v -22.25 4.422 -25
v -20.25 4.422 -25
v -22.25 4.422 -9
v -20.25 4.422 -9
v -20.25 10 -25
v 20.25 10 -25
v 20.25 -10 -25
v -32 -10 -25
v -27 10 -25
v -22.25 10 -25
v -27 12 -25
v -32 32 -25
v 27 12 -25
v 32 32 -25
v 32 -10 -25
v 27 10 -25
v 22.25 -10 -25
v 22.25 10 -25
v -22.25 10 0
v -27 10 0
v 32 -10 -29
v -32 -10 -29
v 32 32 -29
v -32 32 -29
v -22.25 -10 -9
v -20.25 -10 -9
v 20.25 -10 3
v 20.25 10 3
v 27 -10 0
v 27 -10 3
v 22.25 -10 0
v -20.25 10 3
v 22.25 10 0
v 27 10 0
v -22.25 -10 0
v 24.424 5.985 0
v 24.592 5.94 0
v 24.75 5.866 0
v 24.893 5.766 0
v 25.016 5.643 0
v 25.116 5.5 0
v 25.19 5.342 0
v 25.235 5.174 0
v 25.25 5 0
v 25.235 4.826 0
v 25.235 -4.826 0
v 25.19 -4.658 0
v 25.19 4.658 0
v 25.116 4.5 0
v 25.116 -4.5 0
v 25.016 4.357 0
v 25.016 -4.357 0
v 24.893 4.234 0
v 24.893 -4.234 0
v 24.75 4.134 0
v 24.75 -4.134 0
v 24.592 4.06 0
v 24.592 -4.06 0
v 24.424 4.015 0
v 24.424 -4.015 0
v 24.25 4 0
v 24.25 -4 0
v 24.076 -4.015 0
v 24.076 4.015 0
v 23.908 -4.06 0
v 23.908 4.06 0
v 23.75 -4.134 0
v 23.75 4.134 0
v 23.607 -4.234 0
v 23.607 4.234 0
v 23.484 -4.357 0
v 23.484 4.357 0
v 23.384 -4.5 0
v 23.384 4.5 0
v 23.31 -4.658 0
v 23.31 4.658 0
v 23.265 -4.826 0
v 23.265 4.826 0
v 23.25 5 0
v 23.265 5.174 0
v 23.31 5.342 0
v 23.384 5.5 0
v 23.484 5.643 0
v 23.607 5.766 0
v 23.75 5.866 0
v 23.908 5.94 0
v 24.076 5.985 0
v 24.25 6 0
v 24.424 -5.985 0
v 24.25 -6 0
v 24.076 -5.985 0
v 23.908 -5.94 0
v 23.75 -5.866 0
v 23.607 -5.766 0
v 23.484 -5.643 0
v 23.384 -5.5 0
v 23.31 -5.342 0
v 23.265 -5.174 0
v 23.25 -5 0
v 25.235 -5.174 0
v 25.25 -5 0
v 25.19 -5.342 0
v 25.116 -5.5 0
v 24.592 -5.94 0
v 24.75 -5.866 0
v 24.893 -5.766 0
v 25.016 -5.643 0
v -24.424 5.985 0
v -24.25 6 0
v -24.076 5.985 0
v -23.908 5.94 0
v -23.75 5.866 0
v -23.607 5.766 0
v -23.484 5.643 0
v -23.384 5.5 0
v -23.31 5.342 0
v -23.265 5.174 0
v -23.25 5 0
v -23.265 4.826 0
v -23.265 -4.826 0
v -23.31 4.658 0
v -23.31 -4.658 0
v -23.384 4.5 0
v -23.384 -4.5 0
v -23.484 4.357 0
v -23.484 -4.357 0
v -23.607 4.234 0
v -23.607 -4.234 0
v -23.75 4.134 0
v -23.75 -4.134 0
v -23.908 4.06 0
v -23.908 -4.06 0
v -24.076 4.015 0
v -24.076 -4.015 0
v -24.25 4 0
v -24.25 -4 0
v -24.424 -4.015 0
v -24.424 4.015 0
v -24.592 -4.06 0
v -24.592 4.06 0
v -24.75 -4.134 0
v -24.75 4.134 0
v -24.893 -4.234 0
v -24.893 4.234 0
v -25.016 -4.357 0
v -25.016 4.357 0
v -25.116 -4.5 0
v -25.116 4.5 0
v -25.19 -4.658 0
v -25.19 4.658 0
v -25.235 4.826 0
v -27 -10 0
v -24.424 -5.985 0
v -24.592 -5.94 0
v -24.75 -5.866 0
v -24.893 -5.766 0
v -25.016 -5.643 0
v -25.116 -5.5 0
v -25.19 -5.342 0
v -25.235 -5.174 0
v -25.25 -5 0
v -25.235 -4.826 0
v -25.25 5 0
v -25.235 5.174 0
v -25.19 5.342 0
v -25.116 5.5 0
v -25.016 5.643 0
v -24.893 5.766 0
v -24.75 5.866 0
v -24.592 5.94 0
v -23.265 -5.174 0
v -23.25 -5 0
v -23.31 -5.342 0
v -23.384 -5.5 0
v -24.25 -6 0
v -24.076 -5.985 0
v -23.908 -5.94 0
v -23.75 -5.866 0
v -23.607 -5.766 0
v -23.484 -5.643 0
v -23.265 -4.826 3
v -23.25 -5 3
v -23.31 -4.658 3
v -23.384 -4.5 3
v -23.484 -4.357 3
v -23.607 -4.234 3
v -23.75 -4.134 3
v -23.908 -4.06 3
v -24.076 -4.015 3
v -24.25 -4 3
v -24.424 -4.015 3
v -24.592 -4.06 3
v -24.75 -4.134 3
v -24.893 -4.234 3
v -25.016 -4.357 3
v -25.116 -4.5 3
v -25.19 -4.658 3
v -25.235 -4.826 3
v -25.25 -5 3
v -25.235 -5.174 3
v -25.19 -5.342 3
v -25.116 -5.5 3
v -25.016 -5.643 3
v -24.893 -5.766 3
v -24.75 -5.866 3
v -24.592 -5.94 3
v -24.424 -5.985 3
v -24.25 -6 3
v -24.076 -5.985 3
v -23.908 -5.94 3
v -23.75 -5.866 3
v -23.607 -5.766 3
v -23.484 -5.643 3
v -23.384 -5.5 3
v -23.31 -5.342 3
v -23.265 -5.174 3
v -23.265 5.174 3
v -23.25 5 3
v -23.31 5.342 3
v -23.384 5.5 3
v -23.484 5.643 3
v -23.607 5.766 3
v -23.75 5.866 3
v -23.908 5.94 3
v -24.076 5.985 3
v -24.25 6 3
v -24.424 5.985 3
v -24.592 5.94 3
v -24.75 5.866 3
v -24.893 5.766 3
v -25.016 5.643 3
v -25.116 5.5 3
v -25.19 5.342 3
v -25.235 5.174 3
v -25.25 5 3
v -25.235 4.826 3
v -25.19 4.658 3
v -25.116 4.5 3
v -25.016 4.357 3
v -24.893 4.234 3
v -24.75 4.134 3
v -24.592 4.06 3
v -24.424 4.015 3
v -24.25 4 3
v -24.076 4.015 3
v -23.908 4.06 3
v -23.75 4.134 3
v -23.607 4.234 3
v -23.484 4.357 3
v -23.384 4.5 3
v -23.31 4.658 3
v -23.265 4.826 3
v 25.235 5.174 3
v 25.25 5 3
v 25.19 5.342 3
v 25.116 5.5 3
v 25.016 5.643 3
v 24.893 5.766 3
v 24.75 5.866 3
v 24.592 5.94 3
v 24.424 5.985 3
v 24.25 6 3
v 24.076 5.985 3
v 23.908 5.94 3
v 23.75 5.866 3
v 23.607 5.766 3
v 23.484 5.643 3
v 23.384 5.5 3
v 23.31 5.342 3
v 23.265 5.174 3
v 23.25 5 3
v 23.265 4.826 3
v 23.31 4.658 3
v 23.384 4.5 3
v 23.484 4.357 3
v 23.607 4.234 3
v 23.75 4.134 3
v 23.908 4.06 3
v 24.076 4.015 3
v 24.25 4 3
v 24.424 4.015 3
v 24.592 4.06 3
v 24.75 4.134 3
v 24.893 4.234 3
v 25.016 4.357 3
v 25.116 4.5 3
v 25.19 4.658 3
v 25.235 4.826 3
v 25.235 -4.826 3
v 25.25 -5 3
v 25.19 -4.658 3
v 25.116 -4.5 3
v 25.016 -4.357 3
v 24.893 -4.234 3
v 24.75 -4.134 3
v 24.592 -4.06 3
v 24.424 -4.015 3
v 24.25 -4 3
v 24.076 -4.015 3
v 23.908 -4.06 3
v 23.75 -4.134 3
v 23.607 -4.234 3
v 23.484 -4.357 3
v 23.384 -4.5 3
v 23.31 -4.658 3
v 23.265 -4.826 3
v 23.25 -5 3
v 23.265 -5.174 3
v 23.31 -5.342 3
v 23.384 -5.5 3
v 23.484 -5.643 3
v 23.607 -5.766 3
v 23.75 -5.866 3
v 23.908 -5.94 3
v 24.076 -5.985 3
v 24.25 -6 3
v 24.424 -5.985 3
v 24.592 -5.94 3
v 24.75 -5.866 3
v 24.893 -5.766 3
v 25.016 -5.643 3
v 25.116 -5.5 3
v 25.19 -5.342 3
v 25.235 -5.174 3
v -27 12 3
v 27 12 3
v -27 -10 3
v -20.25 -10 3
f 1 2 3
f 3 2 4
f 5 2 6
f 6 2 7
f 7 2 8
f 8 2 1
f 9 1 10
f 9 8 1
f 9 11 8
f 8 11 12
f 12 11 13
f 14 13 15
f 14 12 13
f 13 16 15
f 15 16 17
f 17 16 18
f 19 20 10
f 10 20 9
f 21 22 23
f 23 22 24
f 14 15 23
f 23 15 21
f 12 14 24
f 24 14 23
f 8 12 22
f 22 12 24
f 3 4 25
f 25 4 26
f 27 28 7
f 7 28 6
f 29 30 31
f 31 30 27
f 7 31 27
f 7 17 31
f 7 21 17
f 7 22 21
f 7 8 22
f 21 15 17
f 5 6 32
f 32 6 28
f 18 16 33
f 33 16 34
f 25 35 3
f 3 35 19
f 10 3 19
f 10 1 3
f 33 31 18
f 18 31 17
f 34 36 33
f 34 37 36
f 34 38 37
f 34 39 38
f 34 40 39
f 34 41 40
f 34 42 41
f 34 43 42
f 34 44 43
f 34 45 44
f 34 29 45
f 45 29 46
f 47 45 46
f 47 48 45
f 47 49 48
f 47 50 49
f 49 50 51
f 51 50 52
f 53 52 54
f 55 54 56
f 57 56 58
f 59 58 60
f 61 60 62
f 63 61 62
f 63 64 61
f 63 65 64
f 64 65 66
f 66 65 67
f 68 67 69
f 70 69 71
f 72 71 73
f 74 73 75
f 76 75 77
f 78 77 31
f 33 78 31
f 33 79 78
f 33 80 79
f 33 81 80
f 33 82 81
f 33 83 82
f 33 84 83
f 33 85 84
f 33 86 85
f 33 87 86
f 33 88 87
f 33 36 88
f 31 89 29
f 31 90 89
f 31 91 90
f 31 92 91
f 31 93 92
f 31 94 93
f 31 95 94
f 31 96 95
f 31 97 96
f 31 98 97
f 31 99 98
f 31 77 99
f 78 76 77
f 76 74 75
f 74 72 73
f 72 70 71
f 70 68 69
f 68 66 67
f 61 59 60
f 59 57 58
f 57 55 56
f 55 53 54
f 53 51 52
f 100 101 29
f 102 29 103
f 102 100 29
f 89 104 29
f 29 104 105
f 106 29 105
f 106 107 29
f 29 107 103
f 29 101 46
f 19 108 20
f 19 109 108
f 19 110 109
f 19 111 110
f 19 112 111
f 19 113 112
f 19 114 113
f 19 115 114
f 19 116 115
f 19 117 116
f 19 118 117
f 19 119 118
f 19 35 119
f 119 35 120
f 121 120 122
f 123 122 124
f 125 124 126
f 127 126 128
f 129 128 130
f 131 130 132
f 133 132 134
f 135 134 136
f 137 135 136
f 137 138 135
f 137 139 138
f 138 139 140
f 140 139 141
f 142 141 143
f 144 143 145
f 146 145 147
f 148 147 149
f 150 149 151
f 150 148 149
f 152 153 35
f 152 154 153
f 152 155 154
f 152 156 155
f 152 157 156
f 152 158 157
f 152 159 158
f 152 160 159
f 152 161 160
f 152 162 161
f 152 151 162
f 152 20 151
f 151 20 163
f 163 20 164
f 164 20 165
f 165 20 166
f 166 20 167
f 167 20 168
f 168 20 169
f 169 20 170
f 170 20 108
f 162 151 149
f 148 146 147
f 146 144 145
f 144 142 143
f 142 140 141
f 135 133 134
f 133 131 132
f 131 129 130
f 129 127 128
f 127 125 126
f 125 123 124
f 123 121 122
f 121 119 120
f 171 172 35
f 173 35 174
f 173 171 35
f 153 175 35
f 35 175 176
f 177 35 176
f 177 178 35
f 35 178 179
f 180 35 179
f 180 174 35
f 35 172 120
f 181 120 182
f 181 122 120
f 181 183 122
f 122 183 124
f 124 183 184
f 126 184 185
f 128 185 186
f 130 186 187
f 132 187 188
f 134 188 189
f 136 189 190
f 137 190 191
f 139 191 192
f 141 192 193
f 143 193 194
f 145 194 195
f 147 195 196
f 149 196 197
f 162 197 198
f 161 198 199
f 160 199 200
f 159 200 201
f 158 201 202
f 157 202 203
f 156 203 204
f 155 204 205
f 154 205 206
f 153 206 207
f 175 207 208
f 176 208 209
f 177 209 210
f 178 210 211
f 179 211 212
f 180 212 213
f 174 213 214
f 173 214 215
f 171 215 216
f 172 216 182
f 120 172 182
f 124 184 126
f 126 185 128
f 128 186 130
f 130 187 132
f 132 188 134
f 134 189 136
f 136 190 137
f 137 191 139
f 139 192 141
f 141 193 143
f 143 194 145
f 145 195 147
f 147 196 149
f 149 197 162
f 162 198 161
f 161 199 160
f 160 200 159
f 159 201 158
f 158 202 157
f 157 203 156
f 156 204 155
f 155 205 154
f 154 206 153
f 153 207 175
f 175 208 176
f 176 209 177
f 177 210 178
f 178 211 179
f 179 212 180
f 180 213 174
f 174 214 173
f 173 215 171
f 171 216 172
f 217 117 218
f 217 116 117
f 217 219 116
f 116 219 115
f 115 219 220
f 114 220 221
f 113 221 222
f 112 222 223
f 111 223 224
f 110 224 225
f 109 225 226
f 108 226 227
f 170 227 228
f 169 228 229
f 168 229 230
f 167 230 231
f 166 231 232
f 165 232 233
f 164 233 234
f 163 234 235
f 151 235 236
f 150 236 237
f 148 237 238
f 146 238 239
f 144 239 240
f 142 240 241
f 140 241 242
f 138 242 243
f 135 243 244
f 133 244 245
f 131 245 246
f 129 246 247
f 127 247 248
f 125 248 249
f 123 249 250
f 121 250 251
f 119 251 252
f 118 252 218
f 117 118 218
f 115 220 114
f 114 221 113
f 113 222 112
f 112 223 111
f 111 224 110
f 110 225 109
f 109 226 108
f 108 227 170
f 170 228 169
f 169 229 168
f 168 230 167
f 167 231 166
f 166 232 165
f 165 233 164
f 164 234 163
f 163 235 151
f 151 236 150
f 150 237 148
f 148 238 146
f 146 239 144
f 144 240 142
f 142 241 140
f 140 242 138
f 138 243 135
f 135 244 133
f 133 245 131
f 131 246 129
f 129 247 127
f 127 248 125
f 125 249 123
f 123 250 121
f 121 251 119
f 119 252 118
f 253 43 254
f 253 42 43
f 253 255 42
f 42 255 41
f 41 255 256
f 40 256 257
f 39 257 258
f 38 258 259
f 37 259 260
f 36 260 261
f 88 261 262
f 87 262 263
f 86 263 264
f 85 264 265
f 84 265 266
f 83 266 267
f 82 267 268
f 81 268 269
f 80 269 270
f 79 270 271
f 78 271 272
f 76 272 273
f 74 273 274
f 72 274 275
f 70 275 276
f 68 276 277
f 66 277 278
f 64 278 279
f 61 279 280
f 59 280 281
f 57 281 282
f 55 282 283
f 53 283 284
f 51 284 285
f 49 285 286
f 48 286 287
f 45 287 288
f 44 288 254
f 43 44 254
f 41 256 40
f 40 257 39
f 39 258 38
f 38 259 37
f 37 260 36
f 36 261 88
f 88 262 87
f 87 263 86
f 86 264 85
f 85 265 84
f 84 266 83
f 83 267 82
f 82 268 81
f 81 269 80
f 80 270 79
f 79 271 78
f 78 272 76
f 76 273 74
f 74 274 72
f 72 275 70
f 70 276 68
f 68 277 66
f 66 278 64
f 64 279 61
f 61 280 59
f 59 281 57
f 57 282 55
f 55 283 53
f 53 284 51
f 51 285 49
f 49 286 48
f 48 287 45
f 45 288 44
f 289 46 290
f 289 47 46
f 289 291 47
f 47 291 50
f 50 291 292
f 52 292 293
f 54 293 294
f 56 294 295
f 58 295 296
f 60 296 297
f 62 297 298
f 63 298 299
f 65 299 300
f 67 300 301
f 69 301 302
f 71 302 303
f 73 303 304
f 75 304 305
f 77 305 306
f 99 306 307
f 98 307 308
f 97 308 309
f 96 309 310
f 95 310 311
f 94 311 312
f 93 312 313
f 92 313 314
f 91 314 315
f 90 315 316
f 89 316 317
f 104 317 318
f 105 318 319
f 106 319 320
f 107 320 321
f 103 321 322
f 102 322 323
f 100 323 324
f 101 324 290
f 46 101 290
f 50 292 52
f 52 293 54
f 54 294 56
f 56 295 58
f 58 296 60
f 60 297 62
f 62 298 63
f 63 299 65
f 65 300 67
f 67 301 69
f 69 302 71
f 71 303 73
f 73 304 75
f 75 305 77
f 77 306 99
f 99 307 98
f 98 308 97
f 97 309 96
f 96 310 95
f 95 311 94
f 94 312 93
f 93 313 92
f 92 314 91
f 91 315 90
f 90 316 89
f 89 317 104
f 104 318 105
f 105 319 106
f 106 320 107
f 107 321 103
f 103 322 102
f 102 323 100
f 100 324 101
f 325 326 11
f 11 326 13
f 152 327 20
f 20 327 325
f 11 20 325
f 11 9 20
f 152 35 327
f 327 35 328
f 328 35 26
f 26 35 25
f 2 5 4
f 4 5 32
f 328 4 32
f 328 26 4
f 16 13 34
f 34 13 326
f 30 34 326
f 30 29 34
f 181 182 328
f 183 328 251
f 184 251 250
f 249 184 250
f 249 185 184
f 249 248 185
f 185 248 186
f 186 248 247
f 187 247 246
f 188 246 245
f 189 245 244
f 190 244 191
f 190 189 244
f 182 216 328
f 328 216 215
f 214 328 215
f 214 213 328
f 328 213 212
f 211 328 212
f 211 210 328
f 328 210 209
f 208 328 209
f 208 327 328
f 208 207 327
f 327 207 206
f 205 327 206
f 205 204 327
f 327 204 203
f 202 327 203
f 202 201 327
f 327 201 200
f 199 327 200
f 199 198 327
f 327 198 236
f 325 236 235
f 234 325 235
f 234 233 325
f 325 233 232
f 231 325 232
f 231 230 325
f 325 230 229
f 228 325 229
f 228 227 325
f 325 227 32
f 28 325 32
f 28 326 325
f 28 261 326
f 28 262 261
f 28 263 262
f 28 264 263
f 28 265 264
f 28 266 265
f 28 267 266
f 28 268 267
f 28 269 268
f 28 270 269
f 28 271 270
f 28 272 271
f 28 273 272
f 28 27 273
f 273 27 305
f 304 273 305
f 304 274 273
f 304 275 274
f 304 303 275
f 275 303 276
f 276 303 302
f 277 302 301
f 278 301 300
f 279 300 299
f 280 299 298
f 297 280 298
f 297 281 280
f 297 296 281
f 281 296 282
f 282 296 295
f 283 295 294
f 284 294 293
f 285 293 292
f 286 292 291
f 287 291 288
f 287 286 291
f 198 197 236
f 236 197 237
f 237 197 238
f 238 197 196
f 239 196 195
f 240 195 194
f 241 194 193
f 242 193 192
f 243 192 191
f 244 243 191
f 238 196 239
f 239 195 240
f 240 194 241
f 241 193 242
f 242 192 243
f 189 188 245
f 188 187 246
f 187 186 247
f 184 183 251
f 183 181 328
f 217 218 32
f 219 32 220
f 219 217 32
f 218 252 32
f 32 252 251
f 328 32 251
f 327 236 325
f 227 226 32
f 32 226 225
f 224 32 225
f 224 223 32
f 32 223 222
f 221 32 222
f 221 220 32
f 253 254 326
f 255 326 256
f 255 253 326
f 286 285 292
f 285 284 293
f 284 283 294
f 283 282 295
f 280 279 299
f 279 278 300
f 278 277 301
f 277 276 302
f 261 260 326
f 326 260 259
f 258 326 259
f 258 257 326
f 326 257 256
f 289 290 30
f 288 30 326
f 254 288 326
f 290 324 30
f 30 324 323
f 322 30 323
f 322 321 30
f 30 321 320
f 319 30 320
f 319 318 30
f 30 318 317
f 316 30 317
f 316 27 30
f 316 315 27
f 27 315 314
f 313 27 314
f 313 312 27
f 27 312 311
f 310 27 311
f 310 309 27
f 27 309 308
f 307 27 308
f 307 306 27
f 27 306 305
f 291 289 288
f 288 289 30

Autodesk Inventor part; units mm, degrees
ref_plane "YZ Plane" through (0, 0, 0) normal (1, 0, 0) x (0, 1, 0)
ref_plane "XZ Plane" through (0, 0, 0) normal (0, 1, 0) x (-1, 0, 0)
ref_plane "XY Plane" through (0, 0, 0) normal (0, 0, 1) x (1, 0, 0)
sketch "Sketch1" plane through (0, 0, 0) normal (0, 0, 1) x (1, 0, 0)
  line L0 (20.25, 10) -> (-20.25, 10)
  line L1 (-20.25, 10) -> (-20.25, -10)
  line L2 (-20.25, -10) -> (20.25, -10)
  line L3 (20.25, -10) -> (20.25, 10)
  line L4 (20.25, 10) -> (-20.25, -10) construction
  line L5 (-20.25, 10) -> (20.25, -10) construction
  line L6 (-27, 10) -> (-27, 6.25)
  line L7 (27, -10) -> (27, -6.25)
  line L8 (27, 10) -> (-27, -10) construction
  line L9 (-27, 10) -> (27, -10) construction
  line L10 (20.25, -10) -> (27, -10)
  line L11 (20.25, 10) -> (27, 10)
  line L12 (-20.25, 10) -> (-27, 10)
  line L13 (-20.25, -10) -> (-27, -10)
  line L14 (24.25, 5) -> (-24.25, 5) construction
  line L15 (-24.25, 5) -> (-24.25, -5) construction
  line L16 (-24.25, -5) -> (24.25, -5) construction
  line L17 (24.25, -5) -> (24.25, 5) construction
  line L18 (24.25, 5) -> (-24.25, -5) construction
  line L19 (-24.25, 5) -> (24.25, -5) construction
  circle A0 centre (-24.25, 5) radius 1
  line L20 (-20.25, 0) -> (20.25, 0) construction
  line L21 (0, 10) -> (0, -10) construction
  circle A1 centre (-24.25, -5) radius 1
  circle A2 centre (24.25, 5) radius 1
  circle A3 centre (24.25, -5) radius 1
  line L22 (-27, 3.75) -> (-27, -3.75)
  line L23 (-27, 6.25) -> (-27, 3.75)
  line L24 (-27, -6.25) -> (-27, -10)
  line L25 (-27, -3.75) -> (-27, -6.25)
  line L26 (27, -3.75) -> (27, 3.75)
  line L27 (27, -6.25) -> (27, -3.75)
  line L28 (27, 3.75) -> (27, 6.25)
  line L29 (27, 6.25) -> (27, 10)
  line L30 (-22.25, -10) -> (-22.25, 10)
  line L31 (22.25, -10) -> (22.25, 10)
  line L32 (-27, 10) -> (-27, 12)
  line L33 (-27, 12) -> (27, 12)
  line L34 (27, 12) -> (27, 10)
  point P0 (0, 0)
  point P1 (0, 0)
  point P2 (0, 0)
  dimension "d0" = 40.5
  dimension "d1" = 20
  dimension "d2" = 54
  dimension "d3" = 48.5
  dimension "d4" = 10
  dimension "d6" = 2
  dimension "d7" = 2
  dimension "d8" = 2
  dimension "d9" = 2
extrude "Extrusion1" add sketch "Sketch1" along normal blind 3 contours L11 L31 L10 L3 | L0 L12 L32 L33 L34 L11 | L1 L13 L30 L12 | L11 L29 L28 L26 L27 L7 L10 L31 | L30 L13 L24 L25 L22 L23 L6 L12
extrude "Extrusion2" add sketch "Sketch1" against normal blind 9 contours L11 L31 L10 L3 | L0 L12 L32 L33 L34 L11 | L1 L13 L30 L12
extrude "Extrusion3" add sketch "Sketch1" against normal blind 25 contours L11 L31 L10 L3 | L0 L12 L32 L33 L34 L11
sketch "Sketch2" plane through (0, 0, -25) normal (0, 0, -1) x (-1, 0, 0)
  line L0 (27, 10) -> (27, 12) projected
  line L1 (27, 12) -> (-27, 12) projected
  line L2 (-27, 12) -> (-27, 10) projected
  line L3 (-22.25, -10) -> (-20.25, -10) projected
  line L4 (-32, -10) -> (32, -10)
  line L5 (32, -10) -> (32, 32)
  line L6 (32, 32) -> (-32, 32)
  line L7 (-32, 32) -> (-32, -10)
  point P0 (0, 0)
  dimension "d16" = 20
  dimension "d17" = 5
  dimension "d18" = 5
extrude "Extrusion4" add sketch "Sketch2" along normal blind 4
sketch "Sketch3" plane through (0, 0, -9) normal (0, 0, -1) x (-1, 0, 0)
  line L0 (22.25, 10) -> (20.25, 10) projected
  line L1 (20.25, 10) -> (20.25, -10) projected
  line L2 (22.25, -10) -> (22.25, 10) projected
  line L3 (20.25, 4.4217) -> (22.25, 4.4217)
  point P0 (0, 0)
extrude "Extrusion5" add sketch "Sketch3" along normal up to next
properties part number "podstawa"
